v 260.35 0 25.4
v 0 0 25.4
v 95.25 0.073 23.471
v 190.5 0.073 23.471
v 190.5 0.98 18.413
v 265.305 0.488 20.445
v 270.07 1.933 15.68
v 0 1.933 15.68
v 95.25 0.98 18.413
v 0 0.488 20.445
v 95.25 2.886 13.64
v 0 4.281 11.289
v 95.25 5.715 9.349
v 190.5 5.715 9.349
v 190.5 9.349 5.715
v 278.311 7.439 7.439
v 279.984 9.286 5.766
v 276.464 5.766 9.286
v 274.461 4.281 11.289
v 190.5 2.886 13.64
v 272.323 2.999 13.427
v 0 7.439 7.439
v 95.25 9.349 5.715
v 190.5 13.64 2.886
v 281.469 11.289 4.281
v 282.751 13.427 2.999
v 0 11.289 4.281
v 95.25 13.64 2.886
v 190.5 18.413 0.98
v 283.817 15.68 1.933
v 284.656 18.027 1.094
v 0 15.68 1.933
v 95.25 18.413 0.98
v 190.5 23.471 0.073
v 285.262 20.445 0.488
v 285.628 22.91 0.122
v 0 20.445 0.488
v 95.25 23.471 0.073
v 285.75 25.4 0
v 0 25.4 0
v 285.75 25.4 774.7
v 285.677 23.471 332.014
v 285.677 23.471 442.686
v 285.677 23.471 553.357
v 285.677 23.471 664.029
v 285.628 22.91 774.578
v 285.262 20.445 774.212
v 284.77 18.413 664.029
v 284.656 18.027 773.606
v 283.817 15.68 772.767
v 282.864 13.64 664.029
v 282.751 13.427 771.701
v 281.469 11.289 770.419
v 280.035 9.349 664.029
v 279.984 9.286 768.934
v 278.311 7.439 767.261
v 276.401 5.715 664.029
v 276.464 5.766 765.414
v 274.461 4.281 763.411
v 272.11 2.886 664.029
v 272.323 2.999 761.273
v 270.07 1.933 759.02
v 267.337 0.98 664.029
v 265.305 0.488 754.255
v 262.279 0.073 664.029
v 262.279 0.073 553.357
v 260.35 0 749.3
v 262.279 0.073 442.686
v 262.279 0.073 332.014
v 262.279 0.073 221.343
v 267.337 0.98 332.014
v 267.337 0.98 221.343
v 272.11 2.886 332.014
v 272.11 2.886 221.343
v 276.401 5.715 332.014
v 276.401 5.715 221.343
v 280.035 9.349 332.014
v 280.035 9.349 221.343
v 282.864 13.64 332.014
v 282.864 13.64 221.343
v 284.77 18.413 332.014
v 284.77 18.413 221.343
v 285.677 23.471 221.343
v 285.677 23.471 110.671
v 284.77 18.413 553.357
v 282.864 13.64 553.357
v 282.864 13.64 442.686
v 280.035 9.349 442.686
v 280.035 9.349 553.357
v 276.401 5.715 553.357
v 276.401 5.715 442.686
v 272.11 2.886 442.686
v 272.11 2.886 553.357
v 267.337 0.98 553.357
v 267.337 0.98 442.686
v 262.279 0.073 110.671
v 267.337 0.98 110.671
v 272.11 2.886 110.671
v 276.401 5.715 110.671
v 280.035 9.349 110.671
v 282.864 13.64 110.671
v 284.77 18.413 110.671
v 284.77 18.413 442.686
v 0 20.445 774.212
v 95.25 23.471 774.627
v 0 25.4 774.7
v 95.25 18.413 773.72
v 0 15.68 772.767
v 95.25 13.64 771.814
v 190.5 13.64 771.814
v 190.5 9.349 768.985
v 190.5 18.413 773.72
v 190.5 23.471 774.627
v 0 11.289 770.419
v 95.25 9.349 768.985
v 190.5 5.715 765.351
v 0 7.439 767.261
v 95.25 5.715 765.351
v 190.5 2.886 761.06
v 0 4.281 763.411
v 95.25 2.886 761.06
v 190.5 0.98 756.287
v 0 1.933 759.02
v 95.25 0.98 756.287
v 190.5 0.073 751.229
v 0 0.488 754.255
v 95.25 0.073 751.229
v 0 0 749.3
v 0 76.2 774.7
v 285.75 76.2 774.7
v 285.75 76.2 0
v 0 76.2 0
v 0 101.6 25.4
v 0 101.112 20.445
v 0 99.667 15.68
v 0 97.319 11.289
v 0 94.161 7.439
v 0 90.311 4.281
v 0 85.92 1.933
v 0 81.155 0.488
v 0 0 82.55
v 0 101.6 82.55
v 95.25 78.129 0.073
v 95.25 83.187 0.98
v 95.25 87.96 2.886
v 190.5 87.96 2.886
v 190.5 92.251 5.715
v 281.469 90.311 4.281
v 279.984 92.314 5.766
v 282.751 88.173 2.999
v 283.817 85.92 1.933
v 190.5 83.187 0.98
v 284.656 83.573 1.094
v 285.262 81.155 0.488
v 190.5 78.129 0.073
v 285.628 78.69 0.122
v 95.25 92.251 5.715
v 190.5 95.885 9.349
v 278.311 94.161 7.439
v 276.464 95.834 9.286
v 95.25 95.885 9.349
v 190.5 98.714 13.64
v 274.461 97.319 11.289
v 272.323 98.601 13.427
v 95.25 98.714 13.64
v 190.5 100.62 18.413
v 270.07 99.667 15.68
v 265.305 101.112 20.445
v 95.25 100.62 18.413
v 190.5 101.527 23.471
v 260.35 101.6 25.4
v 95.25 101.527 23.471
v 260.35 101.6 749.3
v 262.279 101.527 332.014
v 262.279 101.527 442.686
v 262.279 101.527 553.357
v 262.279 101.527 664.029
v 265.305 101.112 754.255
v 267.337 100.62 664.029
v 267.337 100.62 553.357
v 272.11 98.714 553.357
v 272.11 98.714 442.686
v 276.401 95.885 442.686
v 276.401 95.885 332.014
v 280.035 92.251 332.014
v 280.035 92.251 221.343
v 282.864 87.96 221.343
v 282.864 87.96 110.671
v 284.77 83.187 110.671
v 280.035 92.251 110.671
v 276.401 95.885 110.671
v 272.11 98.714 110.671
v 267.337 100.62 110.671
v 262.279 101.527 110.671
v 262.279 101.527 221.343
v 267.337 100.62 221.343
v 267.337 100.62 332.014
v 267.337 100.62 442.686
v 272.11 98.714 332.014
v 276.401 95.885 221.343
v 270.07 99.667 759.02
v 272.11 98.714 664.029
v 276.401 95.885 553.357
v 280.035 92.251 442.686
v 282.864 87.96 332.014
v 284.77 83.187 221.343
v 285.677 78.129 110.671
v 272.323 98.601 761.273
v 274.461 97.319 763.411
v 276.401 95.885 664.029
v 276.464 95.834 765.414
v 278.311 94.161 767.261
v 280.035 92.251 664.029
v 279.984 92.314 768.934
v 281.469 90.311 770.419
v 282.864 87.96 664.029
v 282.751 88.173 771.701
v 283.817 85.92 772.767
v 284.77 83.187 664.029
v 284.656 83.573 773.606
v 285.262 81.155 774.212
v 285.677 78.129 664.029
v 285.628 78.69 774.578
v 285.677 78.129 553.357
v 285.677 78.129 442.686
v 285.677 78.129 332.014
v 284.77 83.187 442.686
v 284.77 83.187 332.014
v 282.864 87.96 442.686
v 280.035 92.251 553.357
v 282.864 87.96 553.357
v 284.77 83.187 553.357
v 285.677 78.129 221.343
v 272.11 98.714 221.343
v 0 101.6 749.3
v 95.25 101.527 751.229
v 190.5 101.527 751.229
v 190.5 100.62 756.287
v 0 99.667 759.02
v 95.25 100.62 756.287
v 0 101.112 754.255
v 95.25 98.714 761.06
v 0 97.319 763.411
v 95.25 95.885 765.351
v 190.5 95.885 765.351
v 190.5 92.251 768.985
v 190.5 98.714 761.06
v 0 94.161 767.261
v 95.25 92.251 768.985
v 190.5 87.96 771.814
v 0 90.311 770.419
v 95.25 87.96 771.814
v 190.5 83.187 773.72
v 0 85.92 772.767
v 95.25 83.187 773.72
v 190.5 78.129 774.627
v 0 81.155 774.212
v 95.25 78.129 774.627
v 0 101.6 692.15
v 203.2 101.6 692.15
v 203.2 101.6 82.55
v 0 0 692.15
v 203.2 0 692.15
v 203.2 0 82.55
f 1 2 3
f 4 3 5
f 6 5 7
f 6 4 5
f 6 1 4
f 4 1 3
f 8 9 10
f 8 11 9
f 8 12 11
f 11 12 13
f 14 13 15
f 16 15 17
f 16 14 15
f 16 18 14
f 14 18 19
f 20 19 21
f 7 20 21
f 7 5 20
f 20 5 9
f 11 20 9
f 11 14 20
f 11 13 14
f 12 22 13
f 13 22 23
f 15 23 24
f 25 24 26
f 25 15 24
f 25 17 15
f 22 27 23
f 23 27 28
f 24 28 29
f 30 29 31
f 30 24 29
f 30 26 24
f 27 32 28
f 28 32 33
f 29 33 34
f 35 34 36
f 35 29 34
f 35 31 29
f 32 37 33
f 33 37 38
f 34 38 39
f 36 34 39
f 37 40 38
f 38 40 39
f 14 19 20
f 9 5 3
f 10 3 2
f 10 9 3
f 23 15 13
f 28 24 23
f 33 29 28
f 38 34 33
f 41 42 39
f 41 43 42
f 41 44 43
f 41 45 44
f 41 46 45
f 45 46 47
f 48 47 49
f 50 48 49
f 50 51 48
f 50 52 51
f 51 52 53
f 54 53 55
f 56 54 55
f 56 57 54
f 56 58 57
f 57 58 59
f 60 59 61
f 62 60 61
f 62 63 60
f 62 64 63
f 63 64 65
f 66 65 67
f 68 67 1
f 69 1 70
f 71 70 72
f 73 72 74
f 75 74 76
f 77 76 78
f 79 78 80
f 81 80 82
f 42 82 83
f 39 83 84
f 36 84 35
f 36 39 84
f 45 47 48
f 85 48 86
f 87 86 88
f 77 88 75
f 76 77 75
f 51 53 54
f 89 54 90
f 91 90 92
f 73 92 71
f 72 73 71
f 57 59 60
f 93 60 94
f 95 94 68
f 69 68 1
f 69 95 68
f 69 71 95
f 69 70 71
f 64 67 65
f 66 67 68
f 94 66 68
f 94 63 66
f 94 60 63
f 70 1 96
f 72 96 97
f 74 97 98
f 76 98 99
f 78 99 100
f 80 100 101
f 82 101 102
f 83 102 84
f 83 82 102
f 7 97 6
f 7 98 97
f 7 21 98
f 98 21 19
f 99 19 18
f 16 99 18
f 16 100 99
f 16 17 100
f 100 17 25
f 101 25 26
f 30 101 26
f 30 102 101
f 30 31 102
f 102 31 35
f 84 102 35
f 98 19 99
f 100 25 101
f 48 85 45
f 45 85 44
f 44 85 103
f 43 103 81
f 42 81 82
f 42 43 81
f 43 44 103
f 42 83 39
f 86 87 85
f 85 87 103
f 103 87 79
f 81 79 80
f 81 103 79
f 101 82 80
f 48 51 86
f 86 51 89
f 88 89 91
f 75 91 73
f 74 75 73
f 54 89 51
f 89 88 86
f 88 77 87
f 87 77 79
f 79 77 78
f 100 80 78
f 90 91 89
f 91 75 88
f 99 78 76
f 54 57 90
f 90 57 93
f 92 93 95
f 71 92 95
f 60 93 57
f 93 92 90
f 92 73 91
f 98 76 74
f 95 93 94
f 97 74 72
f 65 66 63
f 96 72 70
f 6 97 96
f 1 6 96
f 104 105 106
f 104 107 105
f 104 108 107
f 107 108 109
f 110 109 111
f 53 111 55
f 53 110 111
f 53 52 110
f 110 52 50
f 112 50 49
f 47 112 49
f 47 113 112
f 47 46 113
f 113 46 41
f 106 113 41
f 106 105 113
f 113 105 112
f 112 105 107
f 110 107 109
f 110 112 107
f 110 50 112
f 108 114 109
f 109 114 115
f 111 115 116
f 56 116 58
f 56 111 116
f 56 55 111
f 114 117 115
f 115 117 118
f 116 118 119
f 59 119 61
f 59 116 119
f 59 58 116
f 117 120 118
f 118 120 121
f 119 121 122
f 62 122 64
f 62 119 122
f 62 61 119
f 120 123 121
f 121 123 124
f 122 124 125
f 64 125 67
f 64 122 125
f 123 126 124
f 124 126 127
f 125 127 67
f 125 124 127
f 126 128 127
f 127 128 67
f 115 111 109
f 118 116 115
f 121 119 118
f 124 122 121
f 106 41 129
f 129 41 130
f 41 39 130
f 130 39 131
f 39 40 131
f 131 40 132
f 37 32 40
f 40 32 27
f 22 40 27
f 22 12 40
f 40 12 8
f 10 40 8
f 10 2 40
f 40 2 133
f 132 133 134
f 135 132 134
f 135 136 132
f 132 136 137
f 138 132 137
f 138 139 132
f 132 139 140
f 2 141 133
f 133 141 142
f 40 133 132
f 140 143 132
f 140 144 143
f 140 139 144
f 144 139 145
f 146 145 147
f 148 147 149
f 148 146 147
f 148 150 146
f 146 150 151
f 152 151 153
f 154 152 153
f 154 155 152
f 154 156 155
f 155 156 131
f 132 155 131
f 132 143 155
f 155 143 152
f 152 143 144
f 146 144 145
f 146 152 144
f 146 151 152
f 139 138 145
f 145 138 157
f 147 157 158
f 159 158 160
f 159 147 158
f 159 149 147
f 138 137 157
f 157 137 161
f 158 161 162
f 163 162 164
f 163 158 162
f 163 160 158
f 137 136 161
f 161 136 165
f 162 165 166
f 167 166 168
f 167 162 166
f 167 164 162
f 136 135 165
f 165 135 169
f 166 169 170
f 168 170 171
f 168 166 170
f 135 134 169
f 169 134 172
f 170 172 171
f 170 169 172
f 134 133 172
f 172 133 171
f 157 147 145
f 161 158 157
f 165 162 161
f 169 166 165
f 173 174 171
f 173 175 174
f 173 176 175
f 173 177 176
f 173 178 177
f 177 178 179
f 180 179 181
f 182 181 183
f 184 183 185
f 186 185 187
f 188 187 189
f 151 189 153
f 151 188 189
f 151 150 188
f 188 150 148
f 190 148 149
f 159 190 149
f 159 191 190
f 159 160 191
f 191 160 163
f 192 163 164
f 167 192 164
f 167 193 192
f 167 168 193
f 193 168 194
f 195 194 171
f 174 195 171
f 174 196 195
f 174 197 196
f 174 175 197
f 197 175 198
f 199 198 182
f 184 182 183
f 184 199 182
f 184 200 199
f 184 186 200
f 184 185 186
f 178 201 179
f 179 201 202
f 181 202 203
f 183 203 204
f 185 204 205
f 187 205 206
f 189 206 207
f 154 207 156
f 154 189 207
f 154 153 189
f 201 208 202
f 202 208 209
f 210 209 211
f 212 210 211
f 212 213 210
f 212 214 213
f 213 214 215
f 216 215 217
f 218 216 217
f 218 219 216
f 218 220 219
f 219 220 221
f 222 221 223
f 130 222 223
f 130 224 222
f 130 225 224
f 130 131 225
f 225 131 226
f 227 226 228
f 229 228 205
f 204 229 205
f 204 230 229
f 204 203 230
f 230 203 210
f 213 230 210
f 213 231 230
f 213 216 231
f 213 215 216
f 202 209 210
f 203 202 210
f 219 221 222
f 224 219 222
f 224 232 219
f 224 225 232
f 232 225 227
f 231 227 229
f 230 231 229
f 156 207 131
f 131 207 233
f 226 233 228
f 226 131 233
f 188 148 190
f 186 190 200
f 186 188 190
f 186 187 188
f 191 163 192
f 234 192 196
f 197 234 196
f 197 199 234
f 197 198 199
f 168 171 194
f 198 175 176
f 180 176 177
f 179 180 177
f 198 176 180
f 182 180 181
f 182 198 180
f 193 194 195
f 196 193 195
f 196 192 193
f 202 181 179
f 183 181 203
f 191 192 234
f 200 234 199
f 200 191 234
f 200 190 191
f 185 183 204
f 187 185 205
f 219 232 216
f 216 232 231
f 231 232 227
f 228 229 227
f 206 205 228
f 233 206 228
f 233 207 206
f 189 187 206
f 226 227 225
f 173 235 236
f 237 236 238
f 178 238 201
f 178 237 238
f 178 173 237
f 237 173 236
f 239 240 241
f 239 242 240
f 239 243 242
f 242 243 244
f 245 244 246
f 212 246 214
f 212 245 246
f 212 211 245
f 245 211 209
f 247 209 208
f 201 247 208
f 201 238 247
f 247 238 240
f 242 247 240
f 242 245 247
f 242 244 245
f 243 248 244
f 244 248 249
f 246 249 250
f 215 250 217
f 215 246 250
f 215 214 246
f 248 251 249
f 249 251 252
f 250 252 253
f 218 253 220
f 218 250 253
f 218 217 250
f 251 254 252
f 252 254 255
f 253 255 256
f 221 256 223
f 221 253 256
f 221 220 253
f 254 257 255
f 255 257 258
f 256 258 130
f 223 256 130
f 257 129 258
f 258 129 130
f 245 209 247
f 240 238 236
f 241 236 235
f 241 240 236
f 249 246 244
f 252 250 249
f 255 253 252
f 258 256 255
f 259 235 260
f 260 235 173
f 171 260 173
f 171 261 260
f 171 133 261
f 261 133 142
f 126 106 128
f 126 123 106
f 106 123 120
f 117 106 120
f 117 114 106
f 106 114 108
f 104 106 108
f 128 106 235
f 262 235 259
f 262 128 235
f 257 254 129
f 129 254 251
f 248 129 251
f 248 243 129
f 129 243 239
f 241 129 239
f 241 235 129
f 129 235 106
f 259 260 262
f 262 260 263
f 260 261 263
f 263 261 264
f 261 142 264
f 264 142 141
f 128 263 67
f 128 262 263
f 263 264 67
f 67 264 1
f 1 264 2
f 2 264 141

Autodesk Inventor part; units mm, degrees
ref_plane "YZ Plane" through (0, 0, 0) normal (1, 0, 0) x (0, 1, 0)
ref_plane "XZ Plane" through (0, 0, 0) normal (0, 1, 0) x (-1, 0, 0)
ref_plane "XY Plane" through (0, 0, 0) normal (0, 0, 1) x (1, 0, 0)
sketch "Sketch2" plane through (0, 0, 0) normal (0, 1, 0) x (-1, 0, 0)
  line L0 (0, 0) -> (-285.75, 0)
  line L1 (-285.75, 0) -> (-285.75, 774.7)
  line L2 (-285.75, 774.7) -> (0, 774.7)
  line L3 (0, 774.7) -> (0, 692.15)
  line L4 (0, 692.15) -> (-203.2, 692.15)
  line L5 (-203.2, 692.15) -> (-203.2, 82.55)
  line L6 (-203.2, 82.55) -> (0, 82.55)
  line L7 (0, 82.55) -> (0, 0)
  dimension "d0" = 82.55
  dimension "d1" = 203.2
  dimension "d2" = 82.55
  dimension "d4" = 609.6
extrude "Extrusion1" add sketch "Sketch2" along normal blind 101.6
fillet "Fillet1" radius 25.4 6 edges at (285.75, 101.6, 387.35) (285.75, 0, 387.35) (142.875, 101.6, 0) (142.875, 101.6, 774.7) (142.875, 0, 774.7) (142.875, 0, 0)
properties part number "BumperRepresentation"
